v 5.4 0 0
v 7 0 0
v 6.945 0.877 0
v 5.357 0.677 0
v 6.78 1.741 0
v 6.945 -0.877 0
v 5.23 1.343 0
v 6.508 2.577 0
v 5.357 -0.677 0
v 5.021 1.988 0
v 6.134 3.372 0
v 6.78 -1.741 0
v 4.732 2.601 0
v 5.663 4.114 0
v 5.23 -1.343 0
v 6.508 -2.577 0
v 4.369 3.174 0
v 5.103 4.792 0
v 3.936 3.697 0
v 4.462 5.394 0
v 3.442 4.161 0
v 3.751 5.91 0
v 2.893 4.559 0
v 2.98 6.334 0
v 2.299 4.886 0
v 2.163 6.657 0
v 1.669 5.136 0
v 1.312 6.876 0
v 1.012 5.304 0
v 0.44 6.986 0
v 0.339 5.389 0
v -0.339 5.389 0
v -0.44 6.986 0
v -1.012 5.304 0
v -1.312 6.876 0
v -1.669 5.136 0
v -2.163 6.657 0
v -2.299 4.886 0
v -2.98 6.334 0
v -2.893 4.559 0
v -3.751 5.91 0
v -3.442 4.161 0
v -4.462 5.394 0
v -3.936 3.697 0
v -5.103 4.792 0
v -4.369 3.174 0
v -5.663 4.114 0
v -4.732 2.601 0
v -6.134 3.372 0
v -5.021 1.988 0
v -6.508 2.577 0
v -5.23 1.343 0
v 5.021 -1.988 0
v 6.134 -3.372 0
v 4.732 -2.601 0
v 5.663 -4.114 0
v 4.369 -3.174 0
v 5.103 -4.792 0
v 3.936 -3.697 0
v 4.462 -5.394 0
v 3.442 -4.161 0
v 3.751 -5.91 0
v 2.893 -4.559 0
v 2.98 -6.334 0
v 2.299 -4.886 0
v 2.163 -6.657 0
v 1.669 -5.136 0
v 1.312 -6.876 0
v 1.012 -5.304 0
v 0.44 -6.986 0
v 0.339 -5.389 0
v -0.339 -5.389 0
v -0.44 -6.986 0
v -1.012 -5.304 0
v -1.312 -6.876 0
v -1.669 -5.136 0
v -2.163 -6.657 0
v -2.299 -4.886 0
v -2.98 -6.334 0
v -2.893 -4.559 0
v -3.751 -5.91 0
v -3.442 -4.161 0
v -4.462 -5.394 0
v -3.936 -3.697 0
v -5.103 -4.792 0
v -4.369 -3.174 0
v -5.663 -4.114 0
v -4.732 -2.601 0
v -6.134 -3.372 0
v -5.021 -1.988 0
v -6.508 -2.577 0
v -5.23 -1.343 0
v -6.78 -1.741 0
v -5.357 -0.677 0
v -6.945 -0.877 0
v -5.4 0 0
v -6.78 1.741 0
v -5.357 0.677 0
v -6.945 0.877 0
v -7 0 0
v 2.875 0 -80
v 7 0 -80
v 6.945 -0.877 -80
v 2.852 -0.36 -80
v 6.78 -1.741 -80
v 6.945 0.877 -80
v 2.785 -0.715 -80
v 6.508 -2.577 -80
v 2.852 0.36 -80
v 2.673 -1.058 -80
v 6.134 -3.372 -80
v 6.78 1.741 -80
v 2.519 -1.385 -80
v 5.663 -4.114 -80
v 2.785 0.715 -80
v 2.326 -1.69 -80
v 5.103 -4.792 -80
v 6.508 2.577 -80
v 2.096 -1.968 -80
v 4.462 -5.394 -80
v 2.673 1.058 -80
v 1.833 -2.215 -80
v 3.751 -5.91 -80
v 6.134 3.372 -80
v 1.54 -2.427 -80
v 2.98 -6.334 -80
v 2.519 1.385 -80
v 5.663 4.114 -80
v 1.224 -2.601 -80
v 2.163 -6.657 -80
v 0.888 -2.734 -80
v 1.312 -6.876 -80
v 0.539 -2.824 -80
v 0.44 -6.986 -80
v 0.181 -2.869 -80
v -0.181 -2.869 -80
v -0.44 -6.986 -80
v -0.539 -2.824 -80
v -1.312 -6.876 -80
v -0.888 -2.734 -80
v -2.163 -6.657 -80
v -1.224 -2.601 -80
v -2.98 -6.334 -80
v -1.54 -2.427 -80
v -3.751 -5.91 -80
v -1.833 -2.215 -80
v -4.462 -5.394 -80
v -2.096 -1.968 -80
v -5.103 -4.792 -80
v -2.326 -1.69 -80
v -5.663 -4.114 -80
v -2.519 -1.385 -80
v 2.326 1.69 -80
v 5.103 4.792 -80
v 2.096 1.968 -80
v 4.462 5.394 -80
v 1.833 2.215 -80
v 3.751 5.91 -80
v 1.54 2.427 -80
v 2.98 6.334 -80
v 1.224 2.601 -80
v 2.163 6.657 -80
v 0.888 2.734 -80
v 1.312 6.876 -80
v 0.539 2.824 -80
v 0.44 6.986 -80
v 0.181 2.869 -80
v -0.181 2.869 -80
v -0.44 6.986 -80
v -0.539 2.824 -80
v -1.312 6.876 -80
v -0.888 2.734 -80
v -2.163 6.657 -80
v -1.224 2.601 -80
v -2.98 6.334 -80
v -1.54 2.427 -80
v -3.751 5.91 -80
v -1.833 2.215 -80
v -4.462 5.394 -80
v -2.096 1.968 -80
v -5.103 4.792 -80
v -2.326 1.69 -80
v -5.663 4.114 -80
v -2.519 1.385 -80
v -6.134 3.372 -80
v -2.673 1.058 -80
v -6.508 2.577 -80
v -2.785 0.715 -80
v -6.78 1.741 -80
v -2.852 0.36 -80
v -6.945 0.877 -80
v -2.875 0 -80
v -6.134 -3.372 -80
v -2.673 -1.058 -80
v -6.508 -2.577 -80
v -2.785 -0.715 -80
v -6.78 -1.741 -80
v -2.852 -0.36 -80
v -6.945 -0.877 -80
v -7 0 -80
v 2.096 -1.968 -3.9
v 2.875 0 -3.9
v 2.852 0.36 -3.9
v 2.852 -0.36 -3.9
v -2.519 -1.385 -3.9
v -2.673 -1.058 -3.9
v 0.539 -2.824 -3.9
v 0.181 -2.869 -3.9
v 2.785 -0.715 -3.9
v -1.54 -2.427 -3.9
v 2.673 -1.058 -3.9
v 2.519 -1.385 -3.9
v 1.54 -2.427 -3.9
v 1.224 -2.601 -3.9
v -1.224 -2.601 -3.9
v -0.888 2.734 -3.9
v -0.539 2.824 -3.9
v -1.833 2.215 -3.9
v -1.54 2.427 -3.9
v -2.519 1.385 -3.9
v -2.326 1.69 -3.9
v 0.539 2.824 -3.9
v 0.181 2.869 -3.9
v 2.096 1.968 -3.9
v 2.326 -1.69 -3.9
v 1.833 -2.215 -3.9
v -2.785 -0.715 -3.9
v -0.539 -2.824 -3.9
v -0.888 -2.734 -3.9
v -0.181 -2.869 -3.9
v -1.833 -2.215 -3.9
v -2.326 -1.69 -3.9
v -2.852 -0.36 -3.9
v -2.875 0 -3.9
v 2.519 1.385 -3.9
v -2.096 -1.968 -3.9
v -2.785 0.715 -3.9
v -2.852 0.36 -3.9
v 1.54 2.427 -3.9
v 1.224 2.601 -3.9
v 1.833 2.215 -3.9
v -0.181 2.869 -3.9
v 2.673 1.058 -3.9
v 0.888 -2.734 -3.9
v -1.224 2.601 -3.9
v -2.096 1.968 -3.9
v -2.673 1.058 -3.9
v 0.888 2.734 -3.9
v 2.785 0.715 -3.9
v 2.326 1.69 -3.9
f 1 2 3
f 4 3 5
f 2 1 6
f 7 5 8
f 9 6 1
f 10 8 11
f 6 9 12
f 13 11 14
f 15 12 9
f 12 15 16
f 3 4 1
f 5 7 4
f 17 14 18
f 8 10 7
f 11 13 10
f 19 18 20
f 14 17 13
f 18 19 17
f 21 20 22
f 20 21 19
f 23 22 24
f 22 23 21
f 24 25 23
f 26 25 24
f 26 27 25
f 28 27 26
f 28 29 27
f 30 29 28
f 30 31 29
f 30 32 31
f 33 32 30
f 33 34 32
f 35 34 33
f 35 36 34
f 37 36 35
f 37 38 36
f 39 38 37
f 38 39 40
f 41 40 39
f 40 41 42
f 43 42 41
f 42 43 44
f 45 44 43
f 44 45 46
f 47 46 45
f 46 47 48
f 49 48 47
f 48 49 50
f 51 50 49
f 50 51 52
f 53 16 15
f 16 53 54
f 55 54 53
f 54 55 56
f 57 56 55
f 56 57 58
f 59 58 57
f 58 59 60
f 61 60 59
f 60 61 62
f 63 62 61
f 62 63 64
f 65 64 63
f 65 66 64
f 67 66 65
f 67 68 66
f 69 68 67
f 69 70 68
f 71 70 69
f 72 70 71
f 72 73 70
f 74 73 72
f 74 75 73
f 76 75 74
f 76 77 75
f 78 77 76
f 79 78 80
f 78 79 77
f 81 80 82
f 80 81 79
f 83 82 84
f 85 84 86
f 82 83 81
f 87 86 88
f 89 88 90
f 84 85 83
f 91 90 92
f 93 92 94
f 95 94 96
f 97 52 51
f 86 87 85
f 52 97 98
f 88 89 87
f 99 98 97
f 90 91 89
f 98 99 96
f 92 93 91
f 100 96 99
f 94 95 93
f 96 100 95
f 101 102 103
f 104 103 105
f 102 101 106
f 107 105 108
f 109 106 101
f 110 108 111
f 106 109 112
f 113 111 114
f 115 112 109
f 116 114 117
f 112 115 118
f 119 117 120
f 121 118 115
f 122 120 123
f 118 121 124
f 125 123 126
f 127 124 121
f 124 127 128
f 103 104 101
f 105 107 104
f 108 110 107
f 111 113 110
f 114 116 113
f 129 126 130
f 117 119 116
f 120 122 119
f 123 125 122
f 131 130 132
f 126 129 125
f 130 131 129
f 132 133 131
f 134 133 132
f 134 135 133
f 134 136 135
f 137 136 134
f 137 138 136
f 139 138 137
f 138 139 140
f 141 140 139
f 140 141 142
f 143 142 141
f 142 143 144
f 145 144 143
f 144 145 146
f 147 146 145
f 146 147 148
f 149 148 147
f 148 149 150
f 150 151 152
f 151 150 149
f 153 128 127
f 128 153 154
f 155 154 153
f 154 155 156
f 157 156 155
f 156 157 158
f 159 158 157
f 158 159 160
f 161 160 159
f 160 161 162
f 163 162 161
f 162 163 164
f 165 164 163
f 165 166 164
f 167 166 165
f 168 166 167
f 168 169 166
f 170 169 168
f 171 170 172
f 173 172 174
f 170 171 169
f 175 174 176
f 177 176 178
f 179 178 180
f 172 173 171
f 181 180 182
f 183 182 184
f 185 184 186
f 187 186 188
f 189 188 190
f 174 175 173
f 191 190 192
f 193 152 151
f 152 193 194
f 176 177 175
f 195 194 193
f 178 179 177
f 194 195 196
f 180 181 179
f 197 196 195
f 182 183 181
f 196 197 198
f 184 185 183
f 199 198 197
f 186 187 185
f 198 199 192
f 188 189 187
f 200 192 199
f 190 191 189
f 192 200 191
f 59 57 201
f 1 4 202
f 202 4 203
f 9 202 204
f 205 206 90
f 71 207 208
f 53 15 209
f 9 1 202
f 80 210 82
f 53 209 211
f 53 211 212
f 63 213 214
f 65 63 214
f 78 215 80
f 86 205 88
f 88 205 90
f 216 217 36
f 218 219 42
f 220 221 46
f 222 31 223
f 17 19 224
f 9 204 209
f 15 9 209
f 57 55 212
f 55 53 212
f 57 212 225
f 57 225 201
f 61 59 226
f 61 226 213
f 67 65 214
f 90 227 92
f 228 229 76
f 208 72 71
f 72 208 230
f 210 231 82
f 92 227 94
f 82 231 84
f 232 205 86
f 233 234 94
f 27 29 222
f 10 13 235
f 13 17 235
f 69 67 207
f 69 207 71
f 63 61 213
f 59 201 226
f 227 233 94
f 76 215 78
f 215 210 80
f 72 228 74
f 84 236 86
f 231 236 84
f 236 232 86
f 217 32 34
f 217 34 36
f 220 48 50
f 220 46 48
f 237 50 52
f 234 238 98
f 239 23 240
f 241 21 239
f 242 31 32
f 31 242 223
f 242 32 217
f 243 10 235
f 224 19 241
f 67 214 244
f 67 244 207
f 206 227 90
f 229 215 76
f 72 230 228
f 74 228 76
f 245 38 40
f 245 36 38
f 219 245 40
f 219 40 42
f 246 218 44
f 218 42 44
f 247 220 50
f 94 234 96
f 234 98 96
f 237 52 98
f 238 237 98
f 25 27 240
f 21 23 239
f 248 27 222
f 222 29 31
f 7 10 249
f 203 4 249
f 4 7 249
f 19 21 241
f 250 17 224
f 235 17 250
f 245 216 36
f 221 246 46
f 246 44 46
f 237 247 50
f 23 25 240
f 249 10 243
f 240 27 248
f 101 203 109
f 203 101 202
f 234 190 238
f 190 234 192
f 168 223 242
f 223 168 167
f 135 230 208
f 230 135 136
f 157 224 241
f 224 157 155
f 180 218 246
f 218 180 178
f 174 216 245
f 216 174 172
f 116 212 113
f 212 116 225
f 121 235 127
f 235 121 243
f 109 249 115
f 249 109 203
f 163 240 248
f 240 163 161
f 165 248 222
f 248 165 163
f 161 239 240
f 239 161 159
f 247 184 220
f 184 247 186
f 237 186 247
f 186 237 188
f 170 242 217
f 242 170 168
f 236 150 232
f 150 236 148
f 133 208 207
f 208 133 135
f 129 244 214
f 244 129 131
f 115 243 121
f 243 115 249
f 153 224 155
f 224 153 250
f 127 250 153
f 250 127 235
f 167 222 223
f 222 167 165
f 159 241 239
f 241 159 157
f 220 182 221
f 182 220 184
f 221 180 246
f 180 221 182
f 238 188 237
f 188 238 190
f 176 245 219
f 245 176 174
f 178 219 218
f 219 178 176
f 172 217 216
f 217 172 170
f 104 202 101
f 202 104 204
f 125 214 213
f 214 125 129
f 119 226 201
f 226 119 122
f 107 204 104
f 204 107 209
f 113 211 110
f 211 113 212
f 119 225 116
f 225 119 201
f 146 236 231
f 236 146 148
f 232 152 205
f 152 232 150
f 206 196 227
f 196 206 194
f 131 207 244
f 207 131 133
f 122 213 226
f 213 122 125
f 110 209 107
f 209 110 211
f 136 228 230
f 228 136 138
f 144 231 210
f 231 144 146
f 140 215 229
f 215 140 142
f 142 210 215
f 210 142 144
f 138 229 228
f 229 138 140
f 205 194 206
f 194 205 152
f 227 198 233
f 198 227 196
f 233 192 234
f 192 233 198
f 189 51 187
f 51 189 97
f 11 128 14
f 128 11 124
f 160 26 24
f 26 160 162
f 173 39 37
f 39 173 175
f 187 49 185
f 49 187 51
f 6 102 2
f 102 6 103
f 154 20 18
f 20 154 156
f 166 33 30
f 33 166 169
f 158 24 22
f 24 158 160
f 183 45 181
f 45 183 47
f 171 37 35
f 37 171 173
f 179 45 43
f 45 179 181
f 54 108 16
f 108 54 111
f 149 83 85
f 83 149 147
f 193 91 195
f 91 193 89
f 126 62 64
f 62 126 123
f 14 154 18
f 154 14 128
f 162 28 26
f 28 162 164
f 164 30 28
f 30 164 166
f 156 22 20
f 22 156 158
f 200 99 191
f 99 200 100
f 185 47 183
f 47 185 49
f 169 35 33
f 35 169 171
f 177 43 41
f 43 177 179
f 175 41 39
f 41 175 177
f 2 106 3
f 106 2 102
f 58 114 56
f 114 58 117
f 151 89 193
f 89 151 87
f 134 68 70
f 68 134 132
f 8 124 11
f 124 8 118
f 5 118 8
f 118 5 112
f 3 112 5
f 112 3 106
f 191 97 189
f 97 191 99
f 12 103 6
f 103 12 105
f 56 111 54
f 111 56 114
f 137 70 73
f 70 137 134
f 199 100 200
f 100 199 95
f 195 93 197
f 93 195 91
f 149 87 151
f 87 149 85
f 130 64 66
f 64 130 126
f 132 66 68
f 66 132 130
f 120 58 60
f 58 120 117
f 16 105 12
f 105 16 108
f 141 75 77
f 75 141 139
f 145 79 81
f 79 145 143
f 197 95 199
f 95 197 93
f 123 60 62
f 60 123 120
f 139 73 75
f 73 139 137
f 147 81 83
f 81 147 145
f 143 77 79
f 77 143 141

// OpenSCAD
$fn = 50;


difference() {
	union() {
		translate(v = [0, 0, -80.0000000000]) {
			cylinder(h = 80, r = 7.0000000000);
		}
		cylinder(h = 0, r = 16.0000000000);
	}
	union() {
		translate(v = [0, 0, 0]) {
			rotate(a = [0, 0, 0]) {
				difference() {
					union() {
						#translate(v = [0, 0, -80.0000000000]) {
							cylinder(h = 80, r = 2.6000000000);
						}
						#translate(v = [0, 0, -3.9000000000]) {
							cylinder(h = 3.9000000000, r = 7.0000000000, r1 = 2.8750000000, r2 = 5.4000000000);
						}
						#translate(v = [0, 0, -80.0000000000]) {
							cylinder(h = 80, r = 2.8750000000);
						}
						#translate(v = [0, 0, -80.0000000000]) {
							cylinder(h = 80, r = 2.6000000000);
						}
					}
					union();
				}
			}
		}
	}
}
